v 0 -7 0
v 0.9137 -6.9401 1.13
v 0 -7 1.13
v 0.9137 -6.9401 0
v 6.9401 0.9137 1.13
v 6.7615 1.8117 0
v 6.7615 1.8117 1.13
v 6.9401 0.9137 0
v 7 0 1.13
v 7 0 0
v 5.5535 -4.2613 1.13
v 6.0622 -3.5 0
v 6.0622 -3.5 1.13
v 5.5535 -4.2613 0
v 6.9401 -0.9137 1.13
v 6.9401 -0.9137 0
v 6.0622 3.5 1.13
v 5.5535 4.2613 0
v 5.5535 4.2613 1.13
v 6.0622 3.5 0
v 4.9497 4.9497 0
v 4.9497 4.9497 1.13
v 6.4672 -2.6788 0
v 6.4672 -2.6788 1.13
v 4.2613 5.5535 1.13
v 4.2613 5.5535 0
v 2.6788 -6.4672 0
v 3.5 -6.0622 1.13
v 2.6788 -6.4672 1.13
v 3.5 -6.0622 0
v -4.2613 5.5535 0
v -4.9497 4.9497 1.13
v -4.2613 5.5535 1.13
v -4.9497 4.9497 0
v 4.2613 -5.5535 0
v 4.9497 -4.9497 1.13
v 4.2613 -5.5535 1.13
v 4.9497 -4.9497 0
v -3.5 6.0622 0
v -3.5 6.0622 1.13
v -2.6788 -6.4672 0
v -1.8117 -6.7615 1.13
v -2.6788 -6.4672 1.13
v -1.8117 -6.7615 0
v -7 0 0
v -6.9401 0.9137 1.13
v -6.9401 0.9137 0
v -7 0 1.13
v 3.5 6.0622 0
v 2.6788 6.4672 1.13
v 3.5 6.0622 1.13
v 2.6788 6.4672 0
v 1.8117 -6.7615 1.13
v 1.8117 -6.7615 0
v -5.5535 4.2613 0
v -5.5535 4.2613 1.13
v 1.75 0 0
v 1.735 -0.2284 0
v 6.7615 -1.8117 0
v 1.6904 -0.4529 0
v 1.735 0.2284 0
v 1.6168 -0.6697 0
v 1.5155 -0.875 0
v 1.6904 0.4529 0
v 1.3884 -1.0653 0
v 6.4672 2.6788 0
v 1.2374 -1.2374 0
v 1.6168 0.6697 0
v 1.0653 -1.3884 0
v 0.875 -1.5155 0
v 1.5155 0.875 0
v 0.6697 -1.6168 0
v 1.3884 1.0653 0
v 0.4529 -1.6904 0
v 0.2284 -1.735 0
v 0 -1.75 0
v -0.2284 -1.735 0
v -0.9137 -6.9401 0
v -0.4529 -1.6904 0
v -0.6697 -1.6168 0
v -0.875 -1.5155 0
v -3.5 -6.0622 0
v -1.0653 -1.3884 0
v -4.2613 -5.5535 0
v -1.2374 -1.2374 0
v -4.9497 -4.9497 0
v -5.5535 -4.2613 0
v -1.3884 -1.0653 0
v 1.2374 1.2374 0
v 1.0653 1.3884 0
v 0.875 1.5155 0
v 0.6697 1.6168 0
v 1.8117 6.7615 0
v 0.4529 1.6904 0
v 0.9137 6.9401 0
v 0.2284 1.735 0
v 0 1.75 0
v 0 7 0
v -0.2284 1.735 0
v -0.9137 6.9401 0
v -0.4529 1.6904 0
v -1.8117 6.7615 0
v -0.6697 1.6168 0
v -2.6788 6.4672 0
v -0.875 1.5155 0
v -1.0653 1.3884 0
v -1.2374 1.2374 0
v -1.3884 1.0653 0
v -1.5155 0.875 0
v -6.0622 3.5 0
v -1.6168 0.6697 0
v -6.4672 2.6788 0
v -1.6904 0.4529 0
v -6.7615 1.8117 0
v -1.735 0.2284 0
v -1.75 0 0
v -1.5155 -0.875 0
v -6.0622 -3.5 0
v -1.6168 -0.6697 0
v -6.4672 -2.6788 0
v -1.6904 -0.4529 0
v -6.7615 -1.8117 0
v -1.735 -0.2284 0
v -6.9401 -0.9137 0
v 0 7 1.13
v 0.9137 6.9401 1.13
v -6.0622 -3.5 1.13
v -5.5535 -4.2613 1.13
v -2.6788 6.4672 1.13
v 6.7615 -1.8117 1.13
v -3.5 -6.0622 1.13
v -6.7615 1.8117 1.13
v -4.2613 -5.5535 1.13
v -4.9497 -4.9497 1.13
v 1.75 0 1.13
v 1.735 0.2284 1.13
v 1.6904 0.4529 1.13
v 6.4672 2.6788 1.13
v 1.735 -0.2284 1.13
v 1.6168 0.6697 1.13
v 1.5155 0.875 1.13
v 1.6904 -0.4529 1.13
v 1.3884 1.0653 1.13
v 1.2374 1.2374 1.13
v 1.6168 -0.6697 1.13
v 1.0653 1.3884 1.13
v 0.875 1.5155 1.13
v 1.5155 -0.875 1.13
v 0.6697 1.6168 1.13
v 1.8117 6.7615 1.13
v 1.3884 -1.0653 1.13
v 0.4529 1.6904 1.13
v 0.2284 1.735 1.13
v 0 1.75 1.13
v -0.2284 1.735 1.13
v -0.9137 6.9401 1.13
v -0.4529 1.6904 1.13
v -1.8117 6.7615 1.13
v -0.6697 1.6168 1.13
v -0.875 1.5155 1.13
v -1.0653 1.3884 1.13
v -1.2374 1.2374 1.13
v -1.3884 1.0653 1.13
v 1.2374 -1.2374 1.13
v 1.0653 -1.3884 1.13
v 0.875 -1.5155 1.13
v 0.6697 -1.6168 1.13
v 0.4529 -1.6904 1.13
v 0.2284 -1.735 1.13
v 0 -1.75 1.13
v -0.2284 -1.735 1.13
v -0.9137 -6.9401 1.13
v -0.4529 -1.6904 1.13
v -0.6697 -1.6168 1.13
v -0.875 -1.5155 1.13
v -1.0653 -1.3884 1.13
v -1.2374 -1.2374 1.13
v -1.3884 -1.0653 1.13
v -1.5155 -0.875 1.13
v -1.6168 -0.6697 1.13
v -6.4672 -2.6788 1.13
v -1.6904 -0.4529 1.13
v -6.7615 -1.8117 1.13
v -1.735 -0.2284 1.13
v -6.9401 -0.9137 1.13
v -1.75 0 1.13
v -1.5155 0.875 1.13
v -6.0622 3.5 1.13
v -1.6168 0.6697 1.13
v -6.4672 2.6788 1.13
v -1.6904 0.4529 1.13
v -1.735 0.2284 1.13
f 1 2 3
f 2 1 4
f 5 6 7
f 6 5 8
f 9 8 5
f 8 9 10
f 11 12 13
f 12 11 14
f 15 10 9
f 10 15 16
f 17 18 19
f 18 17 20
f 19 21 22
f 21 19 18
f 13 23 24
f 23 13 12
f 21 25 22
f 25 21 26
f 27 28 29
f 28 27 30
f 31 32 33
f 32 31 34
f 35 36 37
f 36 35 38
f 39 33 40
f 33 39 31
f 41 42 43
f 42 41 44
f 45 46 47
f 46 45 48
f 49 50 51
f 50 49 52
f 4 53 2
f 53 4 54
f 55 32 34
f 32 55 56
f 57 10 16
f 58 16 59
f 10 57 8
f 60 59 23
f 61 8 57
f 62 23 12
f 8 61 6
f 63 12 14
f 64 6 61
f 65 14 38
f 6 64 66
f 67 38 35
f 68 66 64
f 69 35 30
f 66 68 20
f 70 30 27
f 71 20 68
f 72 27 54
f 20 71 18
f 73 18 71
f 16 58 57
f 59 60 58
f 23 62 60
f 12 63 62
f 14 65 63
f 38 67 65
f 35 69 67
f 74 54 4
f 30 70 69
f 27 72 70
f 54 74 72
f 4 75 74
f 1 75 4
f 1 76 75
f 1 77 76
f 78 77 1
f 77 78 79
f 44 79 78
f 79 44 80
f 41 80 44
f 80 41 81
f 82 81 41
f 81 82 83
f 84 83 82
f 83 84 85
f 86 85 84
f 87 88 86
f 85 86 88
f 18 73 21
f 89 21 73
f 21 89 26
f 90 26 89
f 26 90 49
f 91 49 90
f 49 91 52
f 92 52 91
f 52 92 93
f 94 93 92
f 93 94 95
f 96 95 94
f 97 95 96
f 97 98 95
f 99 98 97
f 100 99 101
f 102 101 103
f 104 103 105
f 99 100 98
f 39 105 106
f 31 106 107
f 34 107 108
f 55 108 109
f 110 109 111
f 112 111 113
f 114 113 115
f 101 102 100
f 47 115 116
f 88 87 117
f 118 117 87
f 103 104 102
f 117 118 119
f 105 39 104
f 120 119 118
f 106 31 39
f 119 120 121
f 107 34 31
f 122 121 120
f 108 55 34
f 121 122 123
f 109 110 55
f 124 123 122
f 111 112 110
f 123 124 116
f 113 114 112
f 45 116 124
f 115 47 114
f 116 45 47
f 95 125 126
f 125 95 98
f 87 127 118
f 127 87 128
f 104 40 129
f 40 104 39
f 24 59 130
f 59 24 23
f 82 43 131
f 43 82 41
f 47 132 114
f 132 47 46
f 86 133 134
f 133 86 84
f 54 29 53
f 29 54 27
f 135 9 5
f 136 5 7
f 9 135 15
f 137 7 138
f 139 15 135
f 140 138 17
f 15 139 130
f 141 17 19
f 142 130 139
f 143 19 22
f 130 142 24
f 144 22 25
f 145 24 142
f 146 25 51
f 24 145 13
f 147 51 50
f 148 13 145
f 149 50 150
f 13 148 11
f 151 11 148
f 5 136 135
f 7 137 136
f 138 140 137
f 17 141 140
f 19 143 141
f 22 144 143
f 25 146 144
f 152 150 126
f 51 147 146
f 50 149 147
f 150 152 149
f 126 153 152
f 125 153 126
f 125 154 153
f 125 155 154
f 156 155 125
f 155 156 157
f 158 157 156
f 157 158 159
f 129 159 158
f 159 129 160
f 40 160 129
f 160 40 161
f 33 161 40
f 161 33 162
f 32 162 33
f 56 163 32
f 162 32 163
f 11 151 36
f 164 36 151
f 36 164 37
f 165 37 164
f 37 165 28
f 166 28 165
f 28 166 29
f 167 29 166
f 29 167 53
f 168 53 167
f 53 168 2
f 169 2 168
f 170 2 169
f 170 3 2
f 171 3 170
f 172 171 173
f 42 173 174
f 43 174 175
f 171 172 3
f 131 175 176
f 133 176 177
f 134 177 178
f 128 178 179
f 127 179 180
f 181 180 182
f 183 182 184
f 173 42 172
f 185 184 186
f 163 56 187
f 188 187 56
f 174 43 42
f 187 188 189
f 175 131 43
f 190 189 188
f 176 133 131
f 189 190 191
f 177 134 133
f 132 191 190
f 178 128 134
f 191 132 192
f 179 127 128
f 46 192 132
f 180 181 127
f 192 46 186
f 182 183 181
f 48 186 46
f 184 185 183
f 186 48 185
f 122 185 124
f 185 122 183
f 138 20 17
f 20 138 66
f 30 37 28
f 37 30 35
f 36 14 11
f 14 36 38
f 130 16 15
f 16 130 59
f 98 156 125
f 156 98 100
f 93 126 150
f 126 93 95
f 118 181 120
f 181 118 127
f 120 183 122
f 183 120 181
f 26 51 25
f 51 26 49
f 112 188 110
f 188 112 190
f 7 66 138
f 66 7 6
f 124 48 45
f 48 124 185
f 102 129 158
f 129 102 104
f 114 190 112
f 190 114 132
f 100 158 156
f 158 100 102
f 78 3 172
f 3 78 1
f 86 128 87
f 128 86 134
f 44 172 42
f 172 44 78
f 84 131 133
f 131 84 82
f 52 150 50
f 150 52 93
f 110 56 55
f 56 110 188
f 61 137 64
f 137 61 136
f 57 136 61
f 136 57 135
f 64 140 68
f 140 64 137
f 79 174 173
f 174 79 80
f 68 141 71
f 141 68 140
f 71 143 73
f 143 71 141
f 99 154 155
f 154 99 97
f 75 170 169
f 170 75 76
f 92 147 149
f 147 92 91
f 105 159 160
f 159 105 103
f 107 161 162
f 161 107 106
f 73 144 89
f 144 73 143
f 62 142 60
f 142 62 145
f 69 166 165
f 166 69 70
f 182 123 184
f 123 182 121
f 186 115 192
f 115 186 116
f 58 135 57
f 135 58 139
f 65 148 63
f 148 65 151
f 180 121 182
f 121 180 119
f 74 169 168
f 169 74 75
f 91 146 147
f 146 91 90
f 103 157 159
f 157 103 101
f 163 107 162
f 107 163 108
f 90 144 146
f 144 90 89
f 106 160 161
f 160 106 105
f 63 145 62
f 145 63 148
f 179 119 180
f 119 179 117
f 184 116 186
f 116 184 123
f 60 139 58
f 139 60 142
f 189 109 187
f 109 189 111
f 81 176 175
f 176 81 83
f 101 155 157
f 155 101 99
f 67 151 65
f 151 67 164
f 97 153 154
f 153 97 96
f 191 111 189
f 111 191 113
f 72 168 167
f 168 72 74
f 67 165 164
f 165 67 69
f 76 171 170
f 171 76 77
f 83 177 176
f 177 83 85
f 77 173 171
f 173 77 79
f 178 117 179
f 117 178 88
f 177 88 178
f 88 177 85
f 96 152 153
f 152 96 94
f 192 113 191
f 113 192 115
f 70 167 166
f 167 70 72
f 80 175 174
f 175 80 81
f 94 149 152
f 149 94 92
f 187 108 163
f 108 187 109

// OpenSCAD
// file: parameters.scad
// =============================================================================
// Gen-AL Stacked dual-stator mid-rotor copper-max plus — WOUND-AWARE (HARD GATE)
// ONE mid dual-face Halbach rotor | TWO wound pancake stators | 18 coils ×155 t
// =============================================================================

wire_awg            = 26;
wire_od             = 0.45;
turns               = 155;      // +10 vs Gen-AI 145; 18×155×~0.120 ≈ 335 m
fill                = 0.70;
layers_per_face     = 2;
wind_build_axial    = layers_per_face * wire_od * fill;   // 0.63
wind_build_radial   = 3 * wire_od * fill;                 // 0.945

coil_id_r           = 18.5;
coil_od_r           = 63.5;
span_deg            = 34.0;     // 9 stations × 40°
former_web          = 1.40;     // thinner vs AI 1.50
flange_t            = 0.60;
wall                = 1.2;
slot_w              = 2.4;
mount_hole          = 3.5;
tab_len             = 7.0;

former_bare_h       = former_web + 2 * flange_t;            // 2.60
coil_envelope_h     = former_bare_h + 2 * wind_build_axial; // 3.86

run_clear           = 0.50;     // tighter vs AI 0.52
gap_spacer_h        = run_clear + wind_build_axial;         // 1.13
m2m                 = coil_envelope_h + 2 * run_clear;      // 4.86 per gap

coil_stations       = 9;        // per stator; ×2 = 18 total
bay_r_in            = coil_id_r - 2.0 - wind_build_radial;
bay_r_out           = coil_od_r + 2.0 + wind_build_radial;
bay_span            = span_deg + 4.0;
bay_offset          = 2.0;
bay_depth           = former_bare_h + wind_build_axial;     // wound sits in bay
stator_back_web     = 2.0;
stator_thick        = bay_depth + stator_back_web;
stator_od           = 156.0;
shaft_clear_stator  = 38.0;
coil_mount_r        = 28.0;

large_pocket_d      = 20.3;
small_pocket_d      = 5.3;
pocket_h            = 5.2;
large_n             = 8;
R_large             = 41.0;     // tighter copper overlap vs AI R=42
R_small_inner       = 27.0;
R_small_mid         = 41.0;
R_small_outer       = 57.0;
carrier_od          = 154.0;
mid_carrier_thick   = 12.0;
hub_h               = 10.0;
hub_od              = 30.0;
rotor_b_offset_deg  = 22.5;

shaft_bore          = 8.35;
bearing_d           = 21.85;
bearing_h           = 7.2;
m3_clear            = 3.5;
bolt_r_inner        = 36.0;
bolt_n_inner        = 6;
flange_bolt_r       = 72.0;
flange_bolt_n       = 6;
brace_r             = 68.0;
brace_d             = 4.3;
brace_n             = 4;

spacer_pad_od       = 14.0;
spacer_pad_id       = m3_clear;
endbell_od          = 156.0;
endbell_thick       = 8.0;
endbell_shaft_clear = 10.0;

$fn = 64;
// main file
// Gen-AL gap spacer — h = run_clear + wind_build_axial
include <parameters.scad>;
$fn = 48;
difference() {
    cylinder(d=spacer_pad_od, h=gap_spacer_h);
    translate([0, 0, -0.1]) cylinder(d=spacer_pad_id, h=gap_spacer_h + 0.2);
}
